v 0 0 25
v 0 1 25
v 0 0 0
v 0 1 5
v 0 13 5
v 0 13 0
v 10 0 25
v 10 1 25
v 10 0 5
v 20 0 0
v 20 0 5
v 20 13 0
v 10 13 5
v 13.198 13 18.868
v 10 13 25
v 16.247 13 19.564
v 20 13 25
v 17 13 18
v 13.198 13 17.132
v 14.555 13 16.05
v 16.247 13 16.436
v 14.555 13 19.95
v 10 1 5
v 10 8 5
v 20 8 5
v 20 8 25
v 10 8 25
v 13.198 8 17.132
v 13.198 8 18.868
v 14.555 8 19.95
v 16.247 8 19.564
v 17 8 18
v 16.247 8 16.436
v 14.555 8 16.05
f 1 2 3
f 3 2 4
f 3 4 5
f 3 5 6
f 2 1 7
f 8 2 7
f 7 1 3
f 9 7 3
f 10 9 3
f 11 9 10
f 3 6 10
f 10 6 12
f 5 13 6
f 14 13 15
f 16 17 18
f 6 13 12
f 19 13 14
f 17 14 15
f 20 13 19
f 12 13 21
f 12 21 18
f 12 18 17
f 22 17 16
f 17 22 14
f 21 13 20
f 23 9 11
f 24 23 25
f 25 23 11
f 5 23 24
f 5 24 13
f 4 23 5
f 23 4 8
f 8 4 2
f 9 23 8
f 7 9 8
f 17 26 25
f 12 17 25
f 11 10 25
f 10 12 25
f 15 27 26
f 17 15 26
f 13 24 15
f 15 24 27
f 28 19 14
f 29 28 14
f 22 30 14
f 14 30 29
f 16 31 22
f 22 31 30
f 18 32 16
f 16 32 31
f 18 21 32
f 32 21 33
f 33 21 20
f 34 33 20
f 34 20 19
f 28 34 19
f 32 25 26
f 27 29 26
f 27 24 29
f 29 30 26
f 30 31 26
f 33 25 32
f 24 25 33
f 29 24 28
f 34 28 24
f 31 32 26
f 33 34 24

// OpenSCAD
translate([0,0,25])
rotate([-90,0,0])
difference() 
{
	cube([20,25,13]);
	translate([-1,-1,1])
		cube([20+2,20+1,7]);
	translate([15,7,-1])
		cylinder(r=2,h=15);
	translate([-1,-1,7])
		cube([10+1,20+1,7]);
	translate([10,-1,-1])
		cube([10+1,20+1,7]);
}
